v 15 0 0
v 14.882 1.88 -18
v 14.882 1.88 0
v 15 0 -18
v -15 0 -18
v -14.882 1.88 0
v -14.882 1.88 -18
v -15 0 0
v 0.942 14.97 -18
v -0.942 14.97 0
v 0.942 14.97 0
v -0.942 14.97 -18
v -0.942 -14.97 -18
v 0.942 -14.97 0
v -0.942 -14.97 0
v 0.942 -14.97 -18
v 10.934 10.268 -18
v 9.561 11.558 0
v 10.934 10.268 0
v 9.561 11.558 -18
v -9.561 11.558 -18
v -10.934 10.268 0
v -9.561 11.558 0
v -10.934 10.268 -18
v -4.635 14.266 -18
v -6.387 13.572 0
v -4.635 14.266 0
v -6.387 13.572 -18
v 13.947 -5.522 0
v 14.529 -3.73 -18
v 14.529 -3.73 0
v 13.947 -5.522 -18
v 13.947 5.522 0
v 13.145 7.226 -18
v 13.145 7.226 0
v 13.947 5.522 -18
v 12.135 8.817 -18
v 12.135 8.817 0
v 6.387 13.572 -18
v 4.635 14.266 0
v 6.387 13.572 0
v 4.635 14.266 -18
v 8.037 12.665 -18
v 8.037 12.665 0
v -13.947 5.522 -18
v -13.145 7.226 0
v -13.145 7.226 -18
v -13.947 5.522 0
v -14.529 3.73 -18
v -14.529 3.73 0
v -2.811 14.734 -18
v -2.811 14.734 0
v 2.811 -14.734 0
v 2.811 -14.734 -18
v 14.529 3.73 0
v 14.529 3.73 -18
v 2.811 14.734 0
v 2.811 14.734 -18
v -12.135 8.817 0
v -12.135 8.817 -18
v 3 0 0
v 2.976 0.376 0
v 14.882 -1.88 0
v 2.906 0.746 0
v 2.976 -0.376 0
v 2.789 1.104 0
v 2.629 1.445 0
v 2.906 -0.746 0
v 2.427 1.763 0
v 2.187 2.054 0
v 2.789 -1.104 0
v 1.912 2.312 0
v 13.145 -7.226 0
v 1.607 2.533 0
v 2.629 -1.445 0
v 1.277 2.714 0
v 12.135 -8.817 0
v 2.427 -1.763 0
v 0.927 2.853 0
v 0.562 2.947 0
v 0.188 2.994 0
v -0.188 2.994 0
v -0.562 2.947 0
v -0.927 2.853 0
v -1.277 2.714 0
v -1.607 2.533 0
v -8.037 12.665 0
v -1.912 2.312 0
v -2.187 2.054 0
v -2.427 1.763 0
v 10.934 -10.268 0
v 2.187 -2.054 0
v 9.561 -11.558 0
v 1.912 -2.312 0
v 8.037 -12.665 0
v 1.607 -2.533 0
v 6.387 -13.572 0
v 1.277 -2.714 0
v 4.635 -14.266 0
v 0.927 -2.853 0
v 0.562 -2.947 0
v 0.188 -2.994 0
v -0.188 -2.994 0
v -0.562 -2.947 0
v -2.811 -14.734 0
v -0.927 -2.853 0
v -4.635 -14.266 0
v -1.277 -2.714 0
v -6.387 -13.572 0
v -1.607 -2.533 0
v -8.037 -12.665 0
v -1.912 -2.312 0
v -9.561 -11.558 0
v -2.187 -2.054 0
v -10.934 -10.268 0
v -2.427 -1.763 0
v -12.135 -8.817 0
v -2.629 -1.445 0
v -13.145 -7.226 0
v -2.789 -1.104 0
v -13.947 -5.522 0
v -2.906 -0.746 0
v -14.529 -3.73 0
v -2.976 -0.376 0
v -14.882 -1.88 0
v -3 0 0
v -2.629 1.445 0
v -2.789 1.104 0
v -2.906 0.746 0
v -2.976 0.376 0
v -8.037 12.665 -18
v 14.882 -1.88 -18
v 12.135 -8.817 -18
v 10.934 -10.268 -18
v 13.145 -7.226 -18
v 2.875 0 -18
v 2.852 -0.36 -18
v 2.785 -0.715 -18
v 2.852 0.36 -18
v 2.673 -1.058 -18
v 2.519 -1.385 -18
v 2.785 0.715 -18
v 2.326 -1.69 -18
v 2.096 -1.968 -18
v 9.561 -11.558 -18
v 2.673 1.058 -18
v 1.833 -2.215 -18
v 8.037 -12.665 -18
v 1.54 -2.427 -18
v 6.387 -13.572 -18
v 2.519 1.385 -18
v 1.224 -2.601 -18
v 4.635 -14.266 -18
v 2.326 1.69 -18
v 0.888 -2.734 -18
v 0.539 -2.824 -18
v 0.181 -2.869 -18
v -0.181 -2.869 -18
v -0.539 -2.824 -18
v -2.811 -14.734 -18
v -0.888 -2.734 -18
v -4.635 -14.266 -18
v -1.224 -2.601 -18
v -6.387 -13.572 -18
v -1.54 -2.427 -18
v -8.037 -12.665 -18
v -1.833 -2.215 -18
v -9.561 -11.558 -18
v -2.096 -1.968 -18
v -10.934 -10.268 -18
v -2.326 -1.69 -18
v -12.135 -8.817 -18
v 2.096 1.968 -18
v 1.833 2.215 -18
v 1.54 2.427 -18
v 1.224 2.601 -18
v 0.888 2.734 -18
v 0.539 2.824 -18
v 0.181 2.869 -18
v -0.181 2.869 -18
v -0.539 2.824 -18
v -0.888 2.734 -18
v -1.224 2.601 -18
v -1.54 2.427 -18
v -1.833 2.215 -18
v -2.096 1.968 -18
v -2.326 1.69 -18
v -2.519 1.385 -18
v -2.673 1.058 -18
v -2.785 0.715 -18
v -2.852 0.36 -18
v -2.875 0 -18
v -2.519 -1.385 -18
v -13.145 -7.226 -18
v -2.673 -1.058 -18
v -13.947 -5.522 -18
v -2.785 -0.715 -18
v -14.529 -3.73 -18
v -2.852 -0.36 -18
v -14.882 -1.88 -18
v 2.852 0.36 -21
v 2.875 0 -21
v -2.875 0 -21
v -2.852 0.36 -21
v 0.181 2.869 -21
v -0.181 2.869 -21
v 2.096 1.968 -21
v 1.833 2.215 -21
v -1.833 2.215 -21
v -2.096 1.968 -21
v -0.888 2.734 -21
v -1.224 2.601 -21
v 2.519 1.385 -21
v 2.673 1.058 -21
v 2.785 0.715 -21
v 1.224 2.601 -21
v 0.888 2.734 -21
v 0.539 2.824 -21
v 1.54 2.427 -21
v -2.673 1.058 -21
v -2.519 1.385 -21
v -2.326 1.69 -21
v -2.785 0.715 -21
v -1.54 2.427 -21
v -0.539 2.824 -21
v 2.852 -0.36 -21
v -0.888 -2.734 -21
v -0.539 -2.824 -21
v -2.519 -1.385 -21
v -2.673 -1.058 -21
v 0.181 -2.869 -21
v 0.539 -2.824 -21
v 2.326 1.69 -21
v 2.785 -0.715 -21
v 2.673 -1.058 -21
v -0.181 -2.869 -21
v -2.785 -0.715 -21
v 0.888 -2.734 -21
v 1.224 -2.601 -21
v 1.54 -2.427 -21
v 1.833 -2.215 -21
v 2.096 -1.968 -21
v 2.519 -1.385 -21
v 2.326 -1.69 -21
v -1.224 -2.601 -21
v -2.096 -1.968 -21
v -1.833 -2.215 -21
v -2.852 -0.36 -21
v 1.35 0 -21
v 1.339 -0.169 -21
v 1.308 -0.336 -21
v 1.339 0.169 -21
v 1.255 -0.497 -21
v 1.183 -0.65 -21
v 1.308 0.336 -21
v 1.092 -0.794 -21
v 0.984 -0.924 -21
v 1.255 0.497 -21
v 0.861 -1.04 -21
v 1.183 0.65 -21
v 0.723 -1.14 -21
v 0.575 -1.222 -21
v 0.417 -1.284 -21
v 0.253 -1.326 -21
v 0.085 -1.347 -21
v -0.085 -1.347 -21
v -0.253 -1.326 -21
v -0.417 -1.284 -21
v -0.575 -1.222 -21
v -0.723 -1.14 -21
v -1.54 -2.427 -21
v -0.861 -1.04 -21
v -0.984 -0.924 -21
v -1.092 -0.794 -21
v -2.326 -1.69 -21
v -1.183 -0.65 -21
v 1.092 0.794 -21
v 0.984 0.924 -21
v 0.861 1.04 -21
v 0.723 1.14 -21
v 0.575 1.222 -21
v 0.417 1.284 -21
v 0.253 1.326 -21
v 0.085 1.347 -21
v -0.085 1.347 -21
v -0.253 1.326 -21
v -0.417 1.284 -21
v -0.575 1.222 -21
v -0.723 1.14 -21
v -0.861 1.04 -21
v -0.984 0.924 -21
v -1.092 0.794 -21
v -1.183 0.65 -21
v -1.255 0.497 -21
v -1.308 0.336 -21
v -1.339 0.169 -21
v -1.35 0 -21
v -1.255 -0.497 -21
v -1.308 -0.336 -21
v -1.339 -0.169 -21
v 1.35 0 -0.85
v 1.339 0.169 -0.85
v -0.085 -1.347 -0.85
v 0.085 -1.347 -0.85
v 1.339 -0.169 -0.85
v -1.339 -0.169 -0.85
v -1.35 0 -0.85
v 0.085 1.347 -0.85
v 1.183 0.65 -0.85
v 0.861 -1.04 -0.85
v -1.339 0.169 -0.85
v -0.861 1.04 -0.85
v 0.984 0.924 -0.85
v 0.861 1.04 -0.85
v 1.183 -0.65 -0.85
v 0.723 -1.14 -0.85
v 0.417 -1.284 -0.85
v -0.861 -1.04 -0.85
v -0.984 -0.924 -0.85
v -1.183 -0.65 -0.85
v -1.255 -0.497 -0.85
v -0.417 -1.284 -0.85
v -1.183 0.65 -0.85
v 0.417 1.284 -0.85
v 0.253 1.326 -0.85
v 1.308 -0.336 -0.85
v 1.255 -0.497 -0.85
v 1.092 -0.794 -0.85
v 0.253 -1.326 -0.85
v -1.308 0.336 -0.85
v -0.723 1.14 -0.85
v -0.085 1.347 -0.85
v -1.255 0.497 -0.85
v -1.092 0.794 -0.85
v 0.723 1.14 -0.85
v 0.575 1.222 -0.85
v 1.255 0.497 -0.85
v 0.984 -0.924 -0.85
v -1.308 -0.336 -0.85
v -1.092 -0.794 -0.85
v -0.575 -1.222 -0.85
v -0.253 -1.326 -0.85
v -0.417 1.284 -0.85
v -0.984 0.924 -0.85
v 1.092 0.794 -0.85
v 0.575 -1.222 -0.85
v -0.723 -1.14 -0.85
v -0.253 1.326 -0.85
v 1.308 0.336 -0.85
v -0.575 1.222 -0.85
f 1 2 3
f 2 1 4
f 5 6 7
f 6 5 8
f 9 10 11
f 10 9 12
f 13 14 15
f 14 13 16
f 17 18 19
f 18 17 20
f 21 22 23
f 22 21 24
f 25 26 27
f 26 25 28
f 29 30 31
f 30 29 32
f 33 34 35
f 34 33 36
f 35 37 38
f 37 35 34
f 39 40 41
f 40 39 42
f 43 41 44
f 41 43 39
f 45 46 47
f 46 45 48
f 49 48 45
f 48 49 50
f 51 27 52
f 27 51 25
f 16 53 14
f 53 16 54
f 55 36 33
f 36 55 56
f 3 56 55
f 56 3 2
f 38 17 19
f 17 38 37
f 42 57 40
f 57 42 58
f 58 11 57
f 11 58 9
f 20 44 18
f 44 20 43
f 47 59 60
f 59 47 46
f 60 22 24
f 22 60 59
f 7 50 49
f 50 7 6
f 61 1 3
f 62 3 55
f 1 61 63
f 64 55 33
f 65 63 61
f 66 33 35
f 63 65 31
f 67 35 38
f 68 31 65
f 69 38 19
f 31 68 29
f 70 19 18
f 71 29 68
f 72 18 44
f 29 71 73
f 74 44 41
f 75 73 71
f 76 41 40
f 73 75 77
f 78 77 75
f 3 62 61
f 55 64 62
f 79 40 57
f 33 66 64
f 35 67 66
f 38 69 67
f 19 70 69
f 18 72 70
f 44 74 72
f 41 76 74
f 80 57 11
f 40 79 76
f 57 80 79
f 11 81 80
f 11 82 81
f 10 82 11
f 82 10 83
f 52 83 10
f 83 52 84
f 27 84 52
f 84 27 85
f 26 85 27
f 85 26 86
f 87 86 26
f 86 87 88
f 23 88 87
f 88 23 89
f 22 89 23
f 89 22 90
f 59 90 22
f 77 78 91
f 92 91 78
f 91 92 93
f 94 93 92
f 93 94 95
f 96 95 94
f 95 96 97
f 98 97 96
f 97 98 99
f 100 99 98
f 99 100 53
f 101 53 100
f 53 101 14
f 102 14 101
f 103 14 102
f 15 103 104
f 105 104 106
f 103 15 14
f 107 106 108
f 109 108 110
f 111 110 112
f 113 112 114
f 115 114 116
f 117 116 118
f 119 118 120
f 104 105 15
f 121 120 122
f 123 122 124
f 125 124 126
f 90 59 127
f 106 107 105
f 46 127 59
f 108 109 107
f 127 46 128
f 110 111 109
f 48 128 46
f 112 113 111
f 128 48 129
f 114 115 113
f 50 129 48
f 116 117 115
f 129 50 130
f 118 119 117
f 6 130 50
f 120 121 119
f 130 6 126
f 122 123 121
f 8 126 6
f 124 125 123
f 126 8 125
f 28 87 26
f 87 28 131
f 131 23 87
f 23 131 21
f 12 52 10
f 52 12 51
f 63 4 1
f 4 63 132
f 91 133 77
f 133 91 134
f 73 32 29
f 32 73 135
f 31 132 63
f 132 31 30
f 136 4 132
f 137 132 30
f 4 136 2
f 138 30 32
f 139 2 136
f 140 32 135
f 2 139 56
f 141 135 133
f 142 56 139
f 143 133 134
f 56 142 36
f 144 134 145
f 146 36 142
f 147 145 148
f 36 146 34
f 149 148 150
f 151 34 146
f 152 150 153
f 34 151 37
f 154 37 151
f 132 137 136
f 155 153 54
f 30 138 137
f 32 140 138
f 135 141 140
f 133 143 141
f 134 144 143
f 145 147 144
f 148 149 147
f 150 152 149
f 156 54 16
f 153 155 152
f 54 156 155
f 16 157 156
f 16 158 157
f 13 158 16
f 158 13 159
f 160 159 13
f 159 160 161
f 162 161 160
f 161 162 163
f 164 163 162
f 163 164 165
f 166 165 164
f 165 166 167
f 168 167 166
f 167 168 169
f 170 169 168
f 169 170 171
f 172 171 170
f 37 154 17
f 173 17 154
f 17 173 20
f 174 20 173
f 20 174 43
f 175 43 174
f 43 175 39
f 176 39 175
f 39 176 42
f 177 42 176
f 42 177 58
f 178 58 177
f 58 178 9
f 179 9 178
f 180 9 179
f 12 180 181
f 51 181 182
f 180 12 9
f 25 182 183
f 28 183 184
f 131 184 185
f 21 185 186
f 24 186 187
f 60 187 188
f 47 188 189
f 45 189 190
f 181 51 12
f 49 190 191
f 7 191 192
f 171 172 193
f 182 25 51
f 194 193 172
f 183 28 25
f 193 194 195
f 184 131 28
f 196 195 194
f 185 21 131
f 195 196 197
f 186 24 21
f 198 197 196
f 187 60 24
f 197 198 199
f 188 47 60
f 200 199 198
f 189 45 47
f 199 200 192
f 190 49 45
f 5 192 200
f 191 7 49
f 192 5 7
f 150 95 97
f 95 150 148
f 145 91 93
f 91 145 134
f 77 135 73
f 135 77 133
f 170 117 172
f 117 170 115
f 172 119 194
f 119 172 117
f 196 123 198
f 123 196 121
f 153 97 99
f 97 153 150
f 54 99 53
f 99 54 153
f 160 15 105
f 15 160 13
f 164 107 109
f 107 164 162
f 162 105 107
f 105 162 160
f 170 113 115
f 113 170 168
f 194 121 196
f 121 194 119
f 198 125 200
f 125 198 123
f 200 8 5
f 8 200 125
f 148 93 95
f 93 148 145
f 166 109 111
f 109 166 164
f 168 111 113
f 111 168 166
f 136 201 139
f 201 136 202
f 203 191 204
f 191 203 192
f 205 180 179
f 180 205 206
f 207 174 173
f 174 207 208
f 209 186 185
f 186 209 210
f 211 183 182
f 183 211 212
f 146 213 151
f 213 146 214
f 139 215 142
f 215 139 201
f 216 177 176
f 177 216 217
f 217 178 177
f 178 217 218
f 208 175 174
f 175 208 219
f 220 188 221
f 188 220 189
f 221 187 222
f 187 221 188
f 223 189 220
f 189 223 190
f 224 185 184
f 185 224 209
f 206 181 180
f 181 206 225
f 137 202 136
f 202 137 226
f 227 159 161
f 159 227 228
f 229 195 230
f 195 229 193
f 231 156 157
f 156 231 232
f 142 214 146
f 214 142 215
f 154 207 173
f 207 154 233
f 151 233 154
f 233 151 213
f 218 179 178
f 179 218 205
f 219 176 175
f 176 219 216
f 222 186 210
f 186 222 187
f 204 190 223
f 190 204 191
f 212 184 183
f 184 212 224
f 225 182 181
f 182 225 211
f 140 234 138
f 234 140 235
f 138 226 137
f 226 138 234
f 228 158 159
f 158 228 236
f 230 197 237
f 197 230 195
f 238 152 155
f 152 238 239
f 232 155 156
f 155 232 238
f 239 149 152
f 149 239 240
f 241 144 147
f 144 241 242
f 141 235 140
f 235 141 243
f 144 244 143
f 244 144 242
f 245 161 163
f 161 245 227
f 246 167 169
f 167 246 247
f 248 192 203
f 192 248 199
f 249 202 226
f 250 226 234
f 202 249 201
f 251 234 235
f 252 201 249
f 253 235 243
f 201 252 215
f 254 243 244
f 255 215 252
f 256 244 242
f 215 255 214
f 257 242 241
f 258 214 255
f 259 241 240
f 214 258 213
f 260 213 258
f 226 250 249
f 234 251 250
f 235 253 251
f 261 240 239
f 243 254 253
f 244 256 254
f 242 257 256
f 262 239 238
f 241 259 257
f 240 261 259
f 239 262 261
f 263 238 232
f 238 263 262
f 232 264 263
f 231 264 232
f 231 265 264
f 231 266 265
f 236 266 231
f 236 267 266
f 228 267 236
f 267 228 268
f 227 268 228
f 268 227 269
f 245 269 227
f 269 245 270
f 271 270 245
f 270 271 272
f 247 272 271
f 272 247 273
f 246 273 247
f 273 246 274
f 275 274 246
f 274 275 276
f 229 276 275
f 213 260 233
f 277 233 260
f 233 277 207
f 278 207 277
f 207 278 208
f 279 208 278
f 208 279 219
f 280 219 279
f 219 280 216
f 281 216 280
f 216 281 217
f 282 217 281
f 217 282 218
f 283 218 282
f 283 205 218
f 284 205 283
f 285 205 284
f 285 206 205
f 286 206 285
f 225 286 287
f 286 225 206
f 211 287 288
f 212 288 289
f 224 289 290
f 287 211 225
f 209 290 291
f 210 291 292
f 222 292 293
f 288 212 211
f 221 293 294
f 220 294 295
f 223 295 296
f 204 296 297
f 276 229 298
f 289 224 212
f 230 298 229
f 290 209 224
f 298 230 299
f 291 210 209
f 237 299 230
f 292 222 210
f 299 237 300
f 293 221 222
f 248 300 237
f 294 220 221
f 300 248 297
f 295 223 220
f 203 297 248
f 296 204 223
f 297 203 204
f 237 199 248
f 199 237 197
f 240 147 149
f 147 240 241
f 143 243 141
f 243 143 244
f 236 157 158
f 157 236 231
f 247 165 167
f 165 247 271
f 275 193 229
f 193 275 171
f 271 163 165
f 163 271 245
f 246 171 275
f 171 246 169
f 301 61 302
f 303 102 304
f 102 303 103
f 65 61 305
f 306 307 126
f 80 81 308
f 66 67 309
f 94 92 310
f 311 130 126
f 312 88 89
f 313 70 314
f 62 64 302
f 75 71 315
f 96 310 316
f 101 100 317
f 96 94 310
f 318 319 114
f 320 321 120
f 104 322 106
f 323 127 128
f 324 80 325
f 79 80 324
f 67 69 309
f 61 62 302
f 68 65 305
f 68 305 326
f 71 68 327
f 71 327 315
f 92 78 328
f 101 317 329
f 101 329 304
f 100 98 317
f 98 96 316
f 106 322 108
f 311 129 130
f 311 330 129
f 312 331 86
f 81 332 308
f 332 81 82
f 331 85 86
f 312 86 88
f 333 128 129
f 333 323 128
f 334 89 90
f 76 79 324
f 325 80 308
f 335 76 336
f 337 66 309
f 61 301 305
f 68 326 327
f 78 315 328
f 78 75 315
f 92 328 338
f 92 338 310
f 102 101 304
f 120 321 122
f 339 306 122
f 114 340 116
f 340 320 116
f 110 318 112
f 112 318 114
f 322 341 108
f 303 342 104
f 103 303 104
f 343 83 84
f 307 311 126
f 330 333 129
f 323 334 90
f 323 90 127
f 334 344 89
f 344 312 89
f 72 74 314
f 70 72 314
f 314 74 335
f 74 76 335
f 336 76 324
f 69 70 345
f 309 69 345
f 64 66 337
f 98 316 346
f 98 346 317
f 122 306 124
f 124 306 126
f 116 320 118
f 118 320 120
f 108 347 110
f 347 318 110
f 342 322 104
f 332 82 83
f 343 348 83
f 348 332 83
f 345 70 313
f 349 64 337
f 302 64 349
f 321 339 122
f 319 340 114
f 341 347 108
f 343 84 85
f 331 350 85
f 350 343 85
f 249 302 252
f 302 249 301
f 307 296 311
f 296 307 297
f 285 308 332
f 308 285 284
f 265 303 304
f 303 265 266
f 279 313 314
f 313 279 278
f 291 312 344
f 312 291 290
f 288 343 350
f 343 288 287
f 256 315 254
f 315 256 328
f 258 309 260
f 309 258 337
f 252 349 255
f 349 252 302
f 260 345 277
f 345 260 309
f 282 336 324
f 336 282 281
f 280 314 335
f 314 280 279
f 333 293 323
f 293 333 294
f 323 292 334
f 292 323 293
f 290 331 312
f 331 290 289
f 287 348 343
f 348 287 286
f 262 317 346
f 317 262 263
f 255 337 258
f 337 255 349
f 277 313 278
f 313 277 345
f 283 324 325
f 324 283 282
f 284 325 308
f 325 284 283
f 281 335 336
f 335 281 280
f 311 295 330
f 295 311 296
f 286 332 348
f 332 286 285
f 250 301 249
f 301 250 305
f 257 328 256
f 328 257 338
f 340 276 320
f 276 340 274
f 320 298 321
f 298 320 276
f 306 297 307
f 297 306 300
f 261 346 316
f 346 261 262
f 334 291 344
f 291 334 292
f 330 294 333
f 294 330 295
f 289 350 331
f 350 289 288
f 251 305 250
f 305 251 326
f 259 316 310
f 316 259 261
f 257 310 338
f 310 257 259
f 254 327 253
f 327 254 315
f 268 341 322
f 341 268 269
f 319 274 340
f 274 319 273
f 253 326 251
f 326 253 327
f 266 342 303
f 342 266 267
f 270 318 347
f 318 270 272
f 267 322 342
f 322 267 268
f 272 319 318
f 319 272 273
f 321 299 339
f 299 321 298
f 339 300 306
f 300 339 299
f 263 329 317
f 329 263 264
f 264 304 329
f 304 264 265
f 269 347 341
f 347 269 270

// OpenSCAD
$fn = 50;

difference() {
	union() {
		translate(v = [0, 0, -18.0]) {
			cylinder(h = 18, r = 15.0);
		}
		#translate(v = [0, 0, -21.0]) {
			cylinder(h = 21, r = 2.875);
		}
	}
	union() {
		translate(v = [0, 0, 0]) {
			rotate(a = [0, 0, 0]) {
				difference() {
					union() {
						translate(v = [0, 0, -21.0]) {
							cylinder(h = 21, r = 1.0);
						}
						translate(v = [0, 0, -0.85]) {
							cylinder(h = 0.85, r1 = 1.35, r2 = 3.0);
						}
						translate(v = [0, 0, -21.0]) {
							cylinder(h = 21, r = 1.35);
						}
						translate(v = [0, 0, -21.0]) {
							cylinder(h = 21, r = 1.0);
						}
					}
					union();
				}
			}
		}
	}
}
